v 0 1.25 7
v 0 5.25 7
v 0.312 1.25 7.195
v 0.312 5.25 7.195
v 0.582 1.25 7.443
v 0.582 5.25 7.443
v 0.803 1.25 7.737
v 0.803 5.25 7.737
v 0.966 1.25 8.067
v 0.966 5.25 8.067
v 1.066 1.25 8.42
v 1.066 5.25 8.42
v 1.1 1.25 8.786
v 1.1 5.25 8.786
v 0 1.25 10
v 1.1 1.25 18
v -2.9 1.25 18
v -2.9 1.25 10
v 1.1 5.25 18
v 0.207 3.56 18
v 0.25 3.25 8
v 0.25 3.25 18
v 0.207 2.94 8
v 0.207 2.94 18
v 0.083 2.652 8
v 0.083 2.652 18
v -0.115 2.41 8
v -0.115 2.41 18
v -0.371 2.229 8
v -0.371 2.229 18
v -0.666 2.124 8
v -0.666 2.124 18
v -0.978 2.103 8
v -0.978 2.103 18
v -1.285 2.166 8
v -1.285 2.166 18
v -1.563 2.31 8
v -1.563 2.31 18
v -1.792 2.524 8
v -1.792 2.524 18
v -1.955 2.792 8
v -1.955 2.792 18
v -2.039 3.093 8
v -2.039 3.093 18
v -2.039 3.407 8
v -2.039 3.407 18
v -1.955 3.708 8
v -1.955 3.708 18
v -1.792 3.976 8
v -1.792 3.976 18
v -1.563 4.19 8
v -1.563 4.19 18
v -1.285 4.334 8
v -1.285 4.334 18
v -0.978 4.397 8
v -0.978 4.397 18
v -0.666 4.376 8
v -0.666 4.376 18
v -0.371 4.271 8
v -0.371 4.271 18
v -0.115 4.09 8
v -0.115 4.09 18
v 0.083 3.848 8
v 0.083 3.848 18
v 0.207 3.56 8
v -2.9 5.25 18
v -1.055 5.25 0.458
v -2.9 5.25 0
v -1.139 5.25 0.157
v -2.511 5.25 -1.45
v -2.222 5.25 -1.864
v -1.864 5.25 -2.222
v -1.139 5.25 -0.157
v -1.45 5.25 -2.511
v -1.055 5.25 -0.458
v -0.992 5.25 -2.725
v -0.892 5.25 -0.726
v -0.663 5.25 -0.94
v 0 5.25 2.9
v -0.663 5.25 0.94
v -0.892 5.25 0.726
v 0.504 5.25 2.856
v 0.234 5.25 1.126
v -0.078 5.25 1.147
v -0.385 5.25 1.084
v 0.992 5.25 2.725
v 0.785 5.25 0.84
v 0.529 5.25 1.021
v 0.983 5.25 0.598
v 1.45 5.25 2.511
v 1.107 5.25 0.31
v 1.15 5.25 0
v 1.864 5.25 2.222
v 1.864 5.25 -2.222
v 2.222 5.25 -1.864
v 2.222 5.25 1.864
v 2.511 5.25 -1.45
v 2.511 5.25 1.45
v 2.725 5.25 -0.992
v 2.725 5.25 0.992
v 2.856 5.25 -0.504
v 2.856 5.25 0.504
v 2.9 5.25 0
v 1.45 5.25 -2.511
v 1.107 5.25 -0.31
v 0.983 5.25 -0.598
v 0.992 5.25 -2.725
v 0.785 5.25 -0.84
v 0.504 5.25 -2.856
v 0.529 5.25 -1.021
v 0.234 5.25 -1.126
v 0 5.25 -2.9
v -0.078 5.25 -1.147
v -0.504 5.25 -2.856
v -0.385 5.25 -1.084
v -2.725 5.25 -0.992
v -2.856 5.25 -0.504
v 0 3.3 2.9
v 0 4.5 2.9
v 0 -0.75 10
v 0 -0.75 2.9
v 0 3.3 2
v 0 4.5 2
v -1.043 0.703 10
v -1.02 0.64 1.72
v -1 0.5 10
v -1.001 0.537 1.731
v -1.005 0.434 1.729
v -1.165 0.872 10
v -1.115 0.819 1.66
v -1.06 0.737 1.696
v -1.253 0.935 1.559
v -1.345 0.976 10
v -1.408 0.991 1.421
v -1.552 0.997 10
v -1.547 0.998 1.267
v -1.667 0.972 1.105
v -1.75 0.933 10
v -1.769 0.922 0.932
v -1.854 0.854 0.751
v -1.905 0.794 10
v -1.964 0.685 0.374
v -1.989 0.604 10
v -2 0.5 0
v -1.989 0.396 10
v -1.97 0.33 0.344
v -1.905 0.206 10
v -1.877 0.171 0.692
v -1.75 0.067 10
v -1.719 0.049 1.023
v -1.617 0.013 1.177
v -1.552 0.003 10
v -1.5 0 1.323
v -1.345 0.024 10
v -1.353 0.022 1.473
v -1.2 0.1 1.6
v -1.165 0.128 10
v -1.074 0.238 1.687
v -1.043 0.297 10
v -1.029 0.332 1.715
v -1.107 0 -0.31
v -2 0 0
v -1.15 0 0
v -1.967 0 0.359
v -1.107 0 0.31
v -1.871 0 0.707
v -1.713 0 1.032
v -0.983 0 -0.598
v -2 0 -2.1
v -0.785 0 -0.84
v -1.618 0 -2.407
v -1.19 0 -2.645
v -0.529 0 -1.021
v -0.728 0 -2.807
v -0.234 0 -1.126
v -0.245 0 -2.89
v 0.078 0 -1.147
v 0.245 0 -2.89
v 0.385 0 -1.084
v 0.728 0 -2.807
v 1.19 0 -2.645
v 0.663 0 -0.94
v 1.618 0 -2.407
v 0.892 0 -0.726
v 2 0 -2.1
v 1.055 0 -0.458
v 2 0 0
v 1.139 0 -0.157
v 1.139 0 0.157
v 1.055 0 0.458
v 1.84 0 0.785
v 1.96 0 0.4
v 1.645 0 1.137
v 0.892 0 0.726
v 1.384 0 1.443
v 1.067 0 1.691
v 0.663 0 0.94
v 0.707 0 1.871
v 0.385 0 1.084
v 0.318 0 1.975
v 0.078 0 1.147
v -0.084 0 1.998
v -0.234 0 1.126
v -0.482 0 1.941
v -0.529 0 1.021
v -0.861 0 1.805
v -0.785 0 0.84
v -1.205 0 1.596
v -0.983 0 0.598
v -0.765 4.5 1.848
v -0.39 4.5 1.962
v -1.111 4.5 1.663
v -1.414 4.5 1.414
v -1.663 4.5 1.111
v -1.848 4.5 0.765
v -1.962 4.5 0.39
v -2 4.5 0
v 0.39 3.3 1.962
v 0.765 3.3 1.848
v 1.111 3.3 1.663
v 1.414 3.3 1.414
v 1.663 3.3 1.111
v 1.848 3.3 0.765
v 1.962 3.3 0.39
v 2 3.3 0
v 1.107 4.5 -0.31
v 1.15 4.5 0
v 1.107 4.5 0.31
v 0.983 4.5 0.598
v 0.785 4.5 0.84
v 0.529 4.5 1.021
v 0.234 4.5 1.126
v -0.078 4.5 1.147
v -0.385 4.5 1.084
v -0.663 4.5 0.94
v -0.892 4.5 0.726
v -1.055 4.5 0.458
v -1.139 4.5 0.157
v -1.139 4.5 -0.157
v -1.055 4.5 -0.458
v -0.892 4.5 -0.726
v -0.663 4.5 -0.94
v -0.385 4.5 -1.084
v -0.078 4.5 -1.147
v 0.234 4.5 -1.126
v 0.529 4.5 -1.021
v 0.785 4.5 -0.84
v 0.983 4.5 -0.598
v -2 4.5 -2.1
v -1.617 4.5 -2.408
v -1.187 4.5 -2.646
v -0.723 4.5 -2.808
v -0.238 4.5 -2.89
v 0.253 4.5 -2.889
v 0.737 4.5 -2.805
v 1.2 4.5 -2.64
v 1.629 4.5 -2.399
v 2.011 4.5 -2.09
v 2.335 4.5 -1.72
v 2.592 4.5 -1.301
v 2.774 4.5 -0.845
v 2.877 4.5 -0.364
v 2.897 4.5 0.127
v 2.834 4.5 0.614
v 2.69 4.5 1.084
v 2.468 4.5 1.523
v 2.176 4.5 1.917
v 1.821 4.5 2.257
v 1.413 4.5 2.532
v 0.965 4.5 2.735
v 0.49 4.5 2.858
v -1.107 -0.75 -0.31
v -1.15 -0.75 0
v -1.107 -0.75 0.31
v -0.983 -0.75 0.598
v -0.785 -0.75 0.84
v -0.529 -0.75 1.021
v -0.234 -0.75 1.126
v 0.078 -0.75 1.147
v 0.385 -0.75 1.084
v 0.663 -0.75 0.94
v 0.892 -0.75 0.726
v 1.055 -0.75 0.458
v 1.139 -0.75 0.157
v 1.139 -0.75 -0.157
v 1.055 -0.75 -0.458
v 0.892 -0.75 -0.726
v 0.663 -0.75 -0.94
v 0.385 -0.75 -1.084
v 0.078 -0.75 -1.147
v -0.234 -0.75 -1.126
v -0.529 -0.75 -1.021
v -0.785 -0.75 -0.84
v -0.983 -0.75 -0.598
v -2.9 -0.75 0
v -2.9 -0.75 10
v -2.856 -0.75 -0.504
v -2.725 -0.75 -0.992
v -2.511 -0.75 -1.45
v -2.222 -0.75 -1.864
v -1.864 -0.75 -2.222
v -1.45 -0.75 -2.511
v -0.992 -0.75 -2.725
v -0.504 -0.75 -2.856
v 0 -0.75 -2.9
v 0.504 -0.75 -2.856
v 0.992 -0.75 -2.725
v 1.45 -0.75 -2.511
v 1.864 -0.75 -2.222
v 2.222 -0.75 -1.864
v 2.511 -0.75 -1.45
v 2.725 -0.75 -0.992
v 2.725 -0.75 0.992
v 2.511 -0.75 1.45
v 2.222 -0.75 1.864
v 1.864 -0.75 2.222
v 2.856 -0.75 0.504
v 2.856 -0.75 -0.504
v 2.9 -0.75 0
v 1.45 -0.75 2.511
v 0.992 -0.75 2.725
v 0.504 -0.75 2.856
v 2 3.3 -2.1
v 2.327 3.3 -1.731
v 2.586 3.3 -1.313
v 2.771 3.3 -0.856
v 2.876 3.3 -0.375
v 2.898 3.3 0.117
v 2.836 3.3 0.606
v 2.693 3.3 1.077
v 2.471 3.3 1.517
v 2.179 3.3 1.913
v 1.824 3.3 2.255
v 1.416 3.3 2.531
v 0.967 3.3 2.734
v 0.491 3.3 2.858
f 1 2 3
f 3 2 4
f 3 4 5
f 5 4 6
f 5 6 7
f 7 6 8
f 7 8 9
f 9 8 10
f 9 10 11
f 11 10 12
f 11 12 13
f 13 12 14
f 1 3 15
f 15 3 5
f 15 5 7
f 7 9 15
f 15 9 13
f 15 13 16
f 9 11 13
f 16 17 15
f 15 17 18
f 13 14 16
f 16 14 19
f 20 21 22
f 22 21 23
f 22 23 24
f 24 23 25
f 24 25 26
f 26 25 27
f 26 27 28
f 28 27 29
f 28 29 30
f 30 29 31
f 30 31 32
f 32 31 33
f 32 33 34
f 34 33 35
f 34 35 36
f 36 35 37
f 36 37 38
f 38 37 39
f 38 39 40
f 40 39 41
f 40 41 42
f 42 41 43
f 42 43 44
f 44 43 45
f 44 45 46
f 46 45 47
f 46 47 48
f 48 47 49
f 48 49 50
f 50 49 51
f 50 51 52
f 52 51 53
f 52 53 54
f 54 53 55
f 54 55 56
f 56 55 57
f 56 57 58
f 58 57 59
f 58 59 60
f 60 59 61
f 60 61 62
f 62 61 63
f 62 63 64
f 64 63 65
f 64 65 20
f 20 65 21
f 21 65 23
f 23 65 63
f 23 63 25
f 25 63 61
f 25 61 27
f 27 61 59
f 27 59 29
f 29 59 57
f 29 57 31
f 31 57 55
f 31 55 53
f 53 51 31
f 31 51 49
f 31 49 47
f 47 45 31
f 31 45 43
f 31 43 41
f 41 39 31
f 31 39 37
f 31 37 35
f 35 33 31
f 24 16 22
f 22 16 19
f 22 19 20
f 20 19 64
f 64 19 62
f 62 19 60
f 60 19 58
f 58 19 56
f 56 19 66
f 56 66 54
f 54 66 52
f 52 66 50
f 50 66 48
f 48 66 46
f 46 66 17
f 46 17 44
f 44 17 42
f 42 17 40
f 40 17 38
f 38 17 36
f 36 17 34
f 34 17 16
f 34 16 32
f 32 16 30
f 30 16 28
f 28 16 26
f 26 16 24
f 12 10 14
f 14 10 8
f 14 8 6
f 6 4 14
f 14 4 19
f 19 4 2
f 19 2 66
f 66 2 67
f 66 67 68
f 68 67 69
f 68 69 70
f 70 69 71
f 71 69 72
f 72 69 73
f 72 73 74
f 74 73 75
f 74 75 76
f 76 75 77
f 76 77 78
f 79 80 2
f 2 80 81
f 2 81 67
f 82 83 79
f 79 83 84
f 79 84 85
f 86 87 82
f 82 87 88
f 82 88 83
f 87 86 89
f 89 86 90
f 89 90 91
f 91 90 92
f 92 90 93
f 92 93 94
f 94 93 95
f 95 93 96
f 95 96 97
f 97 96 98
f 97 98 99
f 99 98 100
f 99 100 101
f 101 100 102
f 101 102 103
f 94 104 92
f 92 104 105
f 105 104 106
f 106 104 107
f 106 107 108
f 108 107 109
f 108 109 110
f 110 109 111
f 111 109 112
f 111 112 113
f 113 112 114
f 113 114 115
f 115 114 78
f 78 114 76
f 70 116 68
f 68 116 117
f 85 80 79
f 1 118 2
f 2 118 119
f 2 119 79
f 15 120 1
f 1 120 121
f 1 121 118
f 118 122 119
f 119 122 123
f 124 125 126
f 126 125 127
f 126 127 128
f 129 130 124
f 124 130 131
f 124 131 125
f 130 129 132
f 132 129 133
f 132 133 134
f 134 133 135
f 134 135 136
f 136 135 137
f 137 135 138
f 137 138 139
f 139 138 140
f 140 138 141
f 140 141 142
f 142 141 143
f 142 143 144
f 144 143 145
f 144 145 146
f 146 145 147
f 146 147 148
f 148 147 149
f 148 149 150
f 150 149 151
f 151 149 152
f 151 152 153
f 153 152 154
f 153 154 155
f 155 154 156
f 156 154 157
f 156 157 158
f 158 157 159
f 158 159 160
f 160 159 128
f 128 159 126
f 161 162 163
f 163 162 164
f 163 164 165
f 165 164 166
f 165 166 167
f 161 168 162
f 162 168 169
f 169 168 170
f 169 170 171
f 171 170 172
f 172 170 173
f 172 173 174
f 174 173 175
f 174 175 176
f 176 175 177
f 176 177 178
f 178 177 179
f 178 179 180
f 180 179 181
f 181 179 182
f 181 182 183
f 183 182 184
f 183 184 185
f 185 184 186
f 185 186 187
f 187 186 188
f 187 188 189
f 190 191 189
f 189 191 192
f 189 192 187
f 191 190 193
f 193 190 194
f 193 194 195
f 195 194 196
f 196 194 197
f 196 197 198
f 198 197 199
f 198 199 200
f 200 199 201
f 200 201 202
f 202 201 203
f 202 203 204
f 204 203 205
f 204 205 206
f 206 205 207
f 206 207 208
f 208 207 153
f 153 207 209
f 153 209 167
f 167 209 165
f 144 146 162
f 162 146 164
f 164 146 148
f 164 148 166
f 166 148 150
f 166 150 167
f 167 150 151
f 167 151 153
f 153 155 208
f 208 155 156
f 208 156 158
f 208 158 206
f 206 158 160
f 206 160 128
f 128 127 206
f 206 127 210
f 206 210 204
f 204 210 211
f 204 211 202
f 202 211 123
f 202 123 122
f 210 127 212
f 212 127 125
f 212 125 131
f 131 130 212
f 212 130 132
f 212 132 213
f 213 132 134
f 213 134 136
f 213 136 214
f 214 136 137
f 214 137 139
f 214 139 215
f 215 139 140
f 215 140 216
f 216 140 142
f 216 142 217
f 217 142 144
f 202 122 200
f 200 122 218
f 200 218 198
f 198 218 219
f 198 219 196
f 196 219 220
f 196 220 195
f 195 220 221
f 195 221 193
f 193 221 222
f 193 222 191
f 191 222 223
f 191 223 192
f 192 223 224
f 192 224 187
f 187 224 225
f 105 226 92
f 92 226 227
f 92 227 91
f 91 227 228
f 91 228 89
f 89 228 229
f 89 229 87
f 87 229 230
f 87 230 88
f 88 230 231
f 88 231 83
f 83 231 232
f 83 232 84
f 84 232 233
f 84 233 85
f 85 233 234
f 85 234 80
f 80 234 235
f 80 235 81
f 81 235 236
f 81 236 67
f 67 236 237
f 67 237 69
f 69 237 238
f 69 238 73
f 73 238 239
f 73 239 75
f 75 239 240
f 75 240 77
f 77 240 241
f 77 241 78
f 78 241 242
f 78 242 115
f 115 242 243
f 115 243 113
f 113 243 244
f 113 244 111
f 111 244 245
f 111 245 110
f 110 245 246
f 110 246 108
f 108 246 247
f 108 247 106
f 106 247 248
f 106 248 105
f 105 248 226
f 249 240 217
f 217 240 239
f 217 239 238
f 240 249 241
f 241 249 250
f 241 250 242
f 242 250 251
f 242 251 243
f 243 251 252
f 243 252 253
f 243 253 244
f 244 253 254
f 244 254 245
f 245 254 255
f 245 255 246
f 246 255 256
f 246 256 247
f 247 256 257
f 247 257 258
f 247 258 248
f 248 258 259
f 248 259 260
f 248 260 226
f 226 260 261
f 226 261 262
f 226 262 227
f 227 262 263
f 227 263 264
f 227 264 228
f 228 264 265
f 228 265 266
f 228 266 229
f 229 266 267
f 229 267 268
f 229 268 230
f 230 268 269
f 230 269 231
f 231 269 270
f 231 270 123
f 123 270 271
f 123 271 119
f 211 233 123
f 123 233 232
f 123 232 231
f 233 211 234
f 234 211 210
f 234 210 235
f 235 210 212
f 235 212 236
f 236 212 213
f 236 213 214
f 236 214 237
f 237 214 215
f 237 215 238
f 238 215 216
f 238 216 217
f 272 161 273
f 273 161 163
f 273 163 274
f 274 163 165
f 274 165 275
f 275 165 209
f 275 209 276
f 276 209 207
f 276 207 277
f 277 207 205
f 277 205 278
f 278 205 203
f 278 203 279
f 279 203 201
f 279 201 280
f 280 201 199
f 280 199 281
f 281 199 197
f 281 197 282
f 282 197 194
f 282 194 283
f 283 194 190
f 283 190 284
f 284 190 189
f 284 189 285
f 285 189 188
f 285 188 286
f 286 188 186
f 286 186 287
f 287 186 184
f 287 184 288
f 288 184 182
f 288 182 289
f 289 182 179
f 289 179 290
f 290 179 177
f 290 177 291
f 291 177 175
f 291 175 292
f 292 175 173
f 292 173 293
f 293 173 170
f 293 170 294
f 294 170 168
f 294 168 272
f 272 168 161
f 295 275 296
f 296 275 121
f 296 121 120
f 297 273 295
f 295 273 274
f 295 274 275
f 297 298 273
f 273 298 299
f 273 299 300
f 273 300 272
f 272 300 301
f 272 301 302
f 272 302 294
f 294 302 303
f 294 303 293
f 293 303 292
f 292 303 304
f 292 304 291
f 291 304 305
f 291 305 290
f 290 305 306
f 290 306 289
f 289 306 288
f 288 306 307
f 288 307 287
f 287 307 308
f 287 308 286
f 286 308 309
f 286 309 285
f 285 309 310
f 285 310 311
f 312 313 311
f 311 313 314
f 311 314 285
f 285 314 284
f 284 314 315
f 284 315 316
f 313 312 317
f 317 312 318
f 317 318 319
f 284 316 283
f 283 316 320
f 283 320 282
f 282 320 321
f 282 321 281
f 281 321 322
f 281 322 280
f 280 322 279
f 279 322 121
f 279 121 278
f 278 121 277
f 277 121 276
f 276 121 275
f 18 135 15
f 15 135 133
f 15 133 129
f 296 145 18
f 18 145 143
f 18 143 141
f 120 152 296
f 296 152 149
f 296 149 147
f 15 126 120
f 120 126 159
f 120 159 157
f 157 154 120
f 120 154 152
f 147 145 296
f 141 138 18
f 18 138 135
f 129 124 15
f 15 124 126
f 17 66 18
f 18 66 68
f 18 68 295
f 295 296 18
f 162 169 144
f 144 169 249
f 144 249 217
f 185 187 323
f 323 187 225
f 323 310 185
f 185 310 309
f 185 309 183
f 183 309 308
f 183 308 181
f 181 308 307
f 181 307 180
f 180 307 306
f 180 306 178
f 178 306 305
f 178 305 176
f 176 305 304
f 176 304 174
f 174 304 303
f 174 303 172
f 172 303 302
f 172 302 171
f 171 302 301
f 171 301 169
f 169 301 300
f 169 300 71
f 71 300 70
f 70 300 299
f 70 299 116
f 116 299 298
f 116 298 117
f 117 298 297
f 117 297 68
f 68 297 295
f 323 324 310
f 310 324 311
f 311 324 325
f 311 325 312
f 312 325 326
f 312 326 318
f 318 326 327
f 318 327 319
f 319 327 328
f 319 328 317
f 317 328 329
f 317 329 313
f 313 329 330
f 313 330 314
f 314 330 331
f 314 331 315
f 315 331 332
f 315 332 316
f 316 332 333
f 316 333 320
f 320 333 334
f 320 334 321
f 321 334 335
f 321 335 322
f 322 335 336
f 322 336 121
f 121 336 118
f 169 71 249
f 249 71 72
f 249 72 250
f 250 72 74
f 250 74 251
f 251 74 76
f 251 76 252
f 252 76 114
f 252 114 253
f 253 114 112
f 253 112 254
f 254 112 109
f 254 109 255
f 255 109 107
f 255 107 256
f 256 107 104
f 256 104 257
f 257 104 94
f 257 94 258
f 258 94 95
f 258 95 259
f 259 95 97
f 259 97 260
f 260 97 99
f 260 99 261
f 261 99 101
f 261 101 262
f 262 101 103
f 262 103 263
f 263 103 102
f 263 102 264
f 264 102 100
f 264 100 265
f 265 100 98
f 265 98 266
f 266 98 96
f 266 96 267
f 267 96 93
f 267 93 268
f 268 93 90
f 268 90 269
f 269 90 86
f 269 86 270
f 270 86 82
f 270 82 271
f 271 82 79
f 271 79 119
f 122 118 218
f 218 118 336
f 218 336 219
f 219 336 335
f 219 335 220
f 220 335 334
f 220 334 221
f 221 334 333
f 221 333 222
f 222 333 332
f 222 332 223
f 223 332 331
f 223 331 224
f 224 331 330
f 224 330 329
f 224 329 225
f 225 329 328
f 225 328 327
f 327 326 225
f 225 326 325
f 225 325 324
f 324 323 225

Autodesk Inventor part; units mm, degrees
ref_plane "YZ Plane" through (0, 0, 0) normal (1, 0, 0) x (0, 1, 0)
ref_plane "XZ Plane" through (0, 0, 0) normal (0, 1, 0) x (-1, 0, 0)
ref_plane "XY Plane" through (0, 0, 0) normal (0, 0, 1) x (1, 0, 0)
sketch "スケッチ1" plane through (0, 0, 0) normal (0, 1, 0) x (-1, 0, 0)
  circle A0 centre (0, 0) radius 1.15
  circle A1 centre (0, 0) radius 2
  circle A2 centre (0, 0) radius 2.9
  line L0 (-2, 0) -> (2, 0)
  line L1 (2, 0) -> (2, -2.9)
  line L2 (2, -2.9) -> (-2, -2.9)
  line L3 (-2, -2.9) -> (-2, 0)
  line L4 (0, 0) -> (0, 2.9)
  line L5 (0, 0) -> (2.9, 0)
  line L6 (2.9, 0) -> (2.9, 15)
  line L7 (2.9, 15) -> (0, 15)
  line L8 (0, 15) -> (0, 0)
  line L9 (0, 0) -> (2.9, 0)
  line L10 (2.9, 0) -> (2.9, 10)
  line L11 (2.9, 10) -> (0, 10)
  line L12 (0, 10) -> (0, 0)
  point P0 (0, 2)
  point P1 (-2, -2.1)
  point P2 (2, -2.1)
  dimension "d1" = 4
  dimension "d2" = 5.8
  dimension "d0" = 2.3
  dimension "d3" = 15
  dimension "d4" = 10
extrude "押し出し1" add sketch "スケッチ1" along normal blind 3.3 contours A1 L3 A2 L4
extrude "押し出し2" add sketch "スケッチ1" along normal blind 4.5 contours L5 A2 L1 | A1 L4 A2 L5 | A2 L8 L11 L6
extrude "押し出し3" add sketch "スケッチ1" against normal blind 0.75 contours L0 A1 A0 | A0 L4 A1 L0 | A0 L0 A1 L4 | L1 A2 L3 A1 | L5 A2 L1 | A1 L4 A2 L5 | A1 L3 A2 L4 | A2 L8 L11 L6
sketch "スケッチ2" plane through (0, 4.5, 0) normal (0, 1, 0) x (1, 0, 0)
  circle A0 centre (0, 0) radius 1.15
  line L0 (-2, 0) -> (-2, 2.1) projected
  circle A1 centre (0, 0) radius 2
  arc A2 (-2, 2.1) -> (-2.9, 0) centre (0, 0) ccw projected
  circle A3 centre (0, 0) radius 2.9
  line L1 (-2, 0) -> (2, 0)
  line L2 (2, 0) -> (2, 2.9)
  line L3 (2, 2.9) -> (-2, 2.9)
  line L4 (-2, 2.9) -> (-2, 0)
  line L5 (-2.9, 0) -> (-2.9, -10) projected
  line L6 (-2.9, -10) -> (0, -10) projected
  line L7 (-2.9, 0) -> (0, 0)
  line L8 (0, 0) -> (0, -10)
  line L9 (0, -10) -> (-2.9, -10)
  line L10 (-2.9, -10) -> (-2.9, 0)
  point P0 (0, -2.9)
extrude "押し出し4" add sketch "スケッチ2" along normal blind 0.75 contours L1 A1 L8 A0 | A0 L1 A1 | A0 L8 A1 L1 | L2 A3 L8 A1 | A1 L0 A3 L2 | L7 A2 L0 | A1 L8 A3 L7 | A3 L8 L6 L5
sketch "スケッチ3" plane through (-2.9, -0.75, 10) normal (0, 0, 1) x (1, 0, 0)
  line L0 (4.05, 0) -> (1.75, 0) projected
  line L1 (0, 0) -> (0, 6) projected
  line L2 (2.9, 0) -> (0, 0)
  line L3 (0, 0) -> (0, 0.75)
  line L4 (0, 0.75) -> (2.9, 0.75)
  line L5 (2.9, 0.75) -> (2.9, 0)
  line L6 (2.9, 0.75) -> (1.4, 0.75)
  line L7 (1.4, 0.75) -> (1.4, 1.15)
  line L8 (1.4, 1.15) -> (2.9, 1.15)
  line L9 (2.9, 1.15) -> (2.9, 0.75)
  line L10 (1.4, 0.75) -> (1.4, 1.25)
  dimension "d13" = 1.5
  dimension "d14" = 0.4
  dimension "d15" = 0.5
hole "穴1" at (-1.5, 0.5, 10) direction (0, 0, -1) diameter 1 end through all
sketch "スケッチ4" plane through (-2.9, -0.75, 10) normal (0, 0, 1) x (1, 0, 0)
  line L0 (0, 0) -> (0, 6) projected
  line L1 (0, 6) -> (4, 6)
  line L2 (4, 6) -> (4, 2)
  line L3 (4, 2) -> (0, 2)
  line L4 (0, 2) -> (0, 6)
  point P0 (2.9, 0.75)
  dimension "d23" = 4
  dimension "d24" = 4
extrude "押し出し5" add sketch "スケッチ4" along normal blind 8 and the other way blind 3
sketch "スケッチ5" plane through (-2.9, -0.75, 18) normal (0, 0, 1) x (1, 0, 0)
  line L0 (5.8, 6) -> (0, 6) projected
  line L1 (0, 6) -> (2, 6)
  line L2 (2, 6) -> (2, 4)
  line L3 (2, 4) -> (0, 4)
  line L4 (0, 4) -> (0, 6)
  point P0 (2.9, 0.75)
  point P1 (2.9, 6)
  dimension "d29" = 2
  dimension "d30" = 2
hole "穴2" at (-0.9, 3.25, 18) direction (0, 0, -1) diameter 2.3 depth 10
fillet "フィレット1" radius 2 1 edges at (1.1, 3.25, 7)
properties part number "srod1.3"
